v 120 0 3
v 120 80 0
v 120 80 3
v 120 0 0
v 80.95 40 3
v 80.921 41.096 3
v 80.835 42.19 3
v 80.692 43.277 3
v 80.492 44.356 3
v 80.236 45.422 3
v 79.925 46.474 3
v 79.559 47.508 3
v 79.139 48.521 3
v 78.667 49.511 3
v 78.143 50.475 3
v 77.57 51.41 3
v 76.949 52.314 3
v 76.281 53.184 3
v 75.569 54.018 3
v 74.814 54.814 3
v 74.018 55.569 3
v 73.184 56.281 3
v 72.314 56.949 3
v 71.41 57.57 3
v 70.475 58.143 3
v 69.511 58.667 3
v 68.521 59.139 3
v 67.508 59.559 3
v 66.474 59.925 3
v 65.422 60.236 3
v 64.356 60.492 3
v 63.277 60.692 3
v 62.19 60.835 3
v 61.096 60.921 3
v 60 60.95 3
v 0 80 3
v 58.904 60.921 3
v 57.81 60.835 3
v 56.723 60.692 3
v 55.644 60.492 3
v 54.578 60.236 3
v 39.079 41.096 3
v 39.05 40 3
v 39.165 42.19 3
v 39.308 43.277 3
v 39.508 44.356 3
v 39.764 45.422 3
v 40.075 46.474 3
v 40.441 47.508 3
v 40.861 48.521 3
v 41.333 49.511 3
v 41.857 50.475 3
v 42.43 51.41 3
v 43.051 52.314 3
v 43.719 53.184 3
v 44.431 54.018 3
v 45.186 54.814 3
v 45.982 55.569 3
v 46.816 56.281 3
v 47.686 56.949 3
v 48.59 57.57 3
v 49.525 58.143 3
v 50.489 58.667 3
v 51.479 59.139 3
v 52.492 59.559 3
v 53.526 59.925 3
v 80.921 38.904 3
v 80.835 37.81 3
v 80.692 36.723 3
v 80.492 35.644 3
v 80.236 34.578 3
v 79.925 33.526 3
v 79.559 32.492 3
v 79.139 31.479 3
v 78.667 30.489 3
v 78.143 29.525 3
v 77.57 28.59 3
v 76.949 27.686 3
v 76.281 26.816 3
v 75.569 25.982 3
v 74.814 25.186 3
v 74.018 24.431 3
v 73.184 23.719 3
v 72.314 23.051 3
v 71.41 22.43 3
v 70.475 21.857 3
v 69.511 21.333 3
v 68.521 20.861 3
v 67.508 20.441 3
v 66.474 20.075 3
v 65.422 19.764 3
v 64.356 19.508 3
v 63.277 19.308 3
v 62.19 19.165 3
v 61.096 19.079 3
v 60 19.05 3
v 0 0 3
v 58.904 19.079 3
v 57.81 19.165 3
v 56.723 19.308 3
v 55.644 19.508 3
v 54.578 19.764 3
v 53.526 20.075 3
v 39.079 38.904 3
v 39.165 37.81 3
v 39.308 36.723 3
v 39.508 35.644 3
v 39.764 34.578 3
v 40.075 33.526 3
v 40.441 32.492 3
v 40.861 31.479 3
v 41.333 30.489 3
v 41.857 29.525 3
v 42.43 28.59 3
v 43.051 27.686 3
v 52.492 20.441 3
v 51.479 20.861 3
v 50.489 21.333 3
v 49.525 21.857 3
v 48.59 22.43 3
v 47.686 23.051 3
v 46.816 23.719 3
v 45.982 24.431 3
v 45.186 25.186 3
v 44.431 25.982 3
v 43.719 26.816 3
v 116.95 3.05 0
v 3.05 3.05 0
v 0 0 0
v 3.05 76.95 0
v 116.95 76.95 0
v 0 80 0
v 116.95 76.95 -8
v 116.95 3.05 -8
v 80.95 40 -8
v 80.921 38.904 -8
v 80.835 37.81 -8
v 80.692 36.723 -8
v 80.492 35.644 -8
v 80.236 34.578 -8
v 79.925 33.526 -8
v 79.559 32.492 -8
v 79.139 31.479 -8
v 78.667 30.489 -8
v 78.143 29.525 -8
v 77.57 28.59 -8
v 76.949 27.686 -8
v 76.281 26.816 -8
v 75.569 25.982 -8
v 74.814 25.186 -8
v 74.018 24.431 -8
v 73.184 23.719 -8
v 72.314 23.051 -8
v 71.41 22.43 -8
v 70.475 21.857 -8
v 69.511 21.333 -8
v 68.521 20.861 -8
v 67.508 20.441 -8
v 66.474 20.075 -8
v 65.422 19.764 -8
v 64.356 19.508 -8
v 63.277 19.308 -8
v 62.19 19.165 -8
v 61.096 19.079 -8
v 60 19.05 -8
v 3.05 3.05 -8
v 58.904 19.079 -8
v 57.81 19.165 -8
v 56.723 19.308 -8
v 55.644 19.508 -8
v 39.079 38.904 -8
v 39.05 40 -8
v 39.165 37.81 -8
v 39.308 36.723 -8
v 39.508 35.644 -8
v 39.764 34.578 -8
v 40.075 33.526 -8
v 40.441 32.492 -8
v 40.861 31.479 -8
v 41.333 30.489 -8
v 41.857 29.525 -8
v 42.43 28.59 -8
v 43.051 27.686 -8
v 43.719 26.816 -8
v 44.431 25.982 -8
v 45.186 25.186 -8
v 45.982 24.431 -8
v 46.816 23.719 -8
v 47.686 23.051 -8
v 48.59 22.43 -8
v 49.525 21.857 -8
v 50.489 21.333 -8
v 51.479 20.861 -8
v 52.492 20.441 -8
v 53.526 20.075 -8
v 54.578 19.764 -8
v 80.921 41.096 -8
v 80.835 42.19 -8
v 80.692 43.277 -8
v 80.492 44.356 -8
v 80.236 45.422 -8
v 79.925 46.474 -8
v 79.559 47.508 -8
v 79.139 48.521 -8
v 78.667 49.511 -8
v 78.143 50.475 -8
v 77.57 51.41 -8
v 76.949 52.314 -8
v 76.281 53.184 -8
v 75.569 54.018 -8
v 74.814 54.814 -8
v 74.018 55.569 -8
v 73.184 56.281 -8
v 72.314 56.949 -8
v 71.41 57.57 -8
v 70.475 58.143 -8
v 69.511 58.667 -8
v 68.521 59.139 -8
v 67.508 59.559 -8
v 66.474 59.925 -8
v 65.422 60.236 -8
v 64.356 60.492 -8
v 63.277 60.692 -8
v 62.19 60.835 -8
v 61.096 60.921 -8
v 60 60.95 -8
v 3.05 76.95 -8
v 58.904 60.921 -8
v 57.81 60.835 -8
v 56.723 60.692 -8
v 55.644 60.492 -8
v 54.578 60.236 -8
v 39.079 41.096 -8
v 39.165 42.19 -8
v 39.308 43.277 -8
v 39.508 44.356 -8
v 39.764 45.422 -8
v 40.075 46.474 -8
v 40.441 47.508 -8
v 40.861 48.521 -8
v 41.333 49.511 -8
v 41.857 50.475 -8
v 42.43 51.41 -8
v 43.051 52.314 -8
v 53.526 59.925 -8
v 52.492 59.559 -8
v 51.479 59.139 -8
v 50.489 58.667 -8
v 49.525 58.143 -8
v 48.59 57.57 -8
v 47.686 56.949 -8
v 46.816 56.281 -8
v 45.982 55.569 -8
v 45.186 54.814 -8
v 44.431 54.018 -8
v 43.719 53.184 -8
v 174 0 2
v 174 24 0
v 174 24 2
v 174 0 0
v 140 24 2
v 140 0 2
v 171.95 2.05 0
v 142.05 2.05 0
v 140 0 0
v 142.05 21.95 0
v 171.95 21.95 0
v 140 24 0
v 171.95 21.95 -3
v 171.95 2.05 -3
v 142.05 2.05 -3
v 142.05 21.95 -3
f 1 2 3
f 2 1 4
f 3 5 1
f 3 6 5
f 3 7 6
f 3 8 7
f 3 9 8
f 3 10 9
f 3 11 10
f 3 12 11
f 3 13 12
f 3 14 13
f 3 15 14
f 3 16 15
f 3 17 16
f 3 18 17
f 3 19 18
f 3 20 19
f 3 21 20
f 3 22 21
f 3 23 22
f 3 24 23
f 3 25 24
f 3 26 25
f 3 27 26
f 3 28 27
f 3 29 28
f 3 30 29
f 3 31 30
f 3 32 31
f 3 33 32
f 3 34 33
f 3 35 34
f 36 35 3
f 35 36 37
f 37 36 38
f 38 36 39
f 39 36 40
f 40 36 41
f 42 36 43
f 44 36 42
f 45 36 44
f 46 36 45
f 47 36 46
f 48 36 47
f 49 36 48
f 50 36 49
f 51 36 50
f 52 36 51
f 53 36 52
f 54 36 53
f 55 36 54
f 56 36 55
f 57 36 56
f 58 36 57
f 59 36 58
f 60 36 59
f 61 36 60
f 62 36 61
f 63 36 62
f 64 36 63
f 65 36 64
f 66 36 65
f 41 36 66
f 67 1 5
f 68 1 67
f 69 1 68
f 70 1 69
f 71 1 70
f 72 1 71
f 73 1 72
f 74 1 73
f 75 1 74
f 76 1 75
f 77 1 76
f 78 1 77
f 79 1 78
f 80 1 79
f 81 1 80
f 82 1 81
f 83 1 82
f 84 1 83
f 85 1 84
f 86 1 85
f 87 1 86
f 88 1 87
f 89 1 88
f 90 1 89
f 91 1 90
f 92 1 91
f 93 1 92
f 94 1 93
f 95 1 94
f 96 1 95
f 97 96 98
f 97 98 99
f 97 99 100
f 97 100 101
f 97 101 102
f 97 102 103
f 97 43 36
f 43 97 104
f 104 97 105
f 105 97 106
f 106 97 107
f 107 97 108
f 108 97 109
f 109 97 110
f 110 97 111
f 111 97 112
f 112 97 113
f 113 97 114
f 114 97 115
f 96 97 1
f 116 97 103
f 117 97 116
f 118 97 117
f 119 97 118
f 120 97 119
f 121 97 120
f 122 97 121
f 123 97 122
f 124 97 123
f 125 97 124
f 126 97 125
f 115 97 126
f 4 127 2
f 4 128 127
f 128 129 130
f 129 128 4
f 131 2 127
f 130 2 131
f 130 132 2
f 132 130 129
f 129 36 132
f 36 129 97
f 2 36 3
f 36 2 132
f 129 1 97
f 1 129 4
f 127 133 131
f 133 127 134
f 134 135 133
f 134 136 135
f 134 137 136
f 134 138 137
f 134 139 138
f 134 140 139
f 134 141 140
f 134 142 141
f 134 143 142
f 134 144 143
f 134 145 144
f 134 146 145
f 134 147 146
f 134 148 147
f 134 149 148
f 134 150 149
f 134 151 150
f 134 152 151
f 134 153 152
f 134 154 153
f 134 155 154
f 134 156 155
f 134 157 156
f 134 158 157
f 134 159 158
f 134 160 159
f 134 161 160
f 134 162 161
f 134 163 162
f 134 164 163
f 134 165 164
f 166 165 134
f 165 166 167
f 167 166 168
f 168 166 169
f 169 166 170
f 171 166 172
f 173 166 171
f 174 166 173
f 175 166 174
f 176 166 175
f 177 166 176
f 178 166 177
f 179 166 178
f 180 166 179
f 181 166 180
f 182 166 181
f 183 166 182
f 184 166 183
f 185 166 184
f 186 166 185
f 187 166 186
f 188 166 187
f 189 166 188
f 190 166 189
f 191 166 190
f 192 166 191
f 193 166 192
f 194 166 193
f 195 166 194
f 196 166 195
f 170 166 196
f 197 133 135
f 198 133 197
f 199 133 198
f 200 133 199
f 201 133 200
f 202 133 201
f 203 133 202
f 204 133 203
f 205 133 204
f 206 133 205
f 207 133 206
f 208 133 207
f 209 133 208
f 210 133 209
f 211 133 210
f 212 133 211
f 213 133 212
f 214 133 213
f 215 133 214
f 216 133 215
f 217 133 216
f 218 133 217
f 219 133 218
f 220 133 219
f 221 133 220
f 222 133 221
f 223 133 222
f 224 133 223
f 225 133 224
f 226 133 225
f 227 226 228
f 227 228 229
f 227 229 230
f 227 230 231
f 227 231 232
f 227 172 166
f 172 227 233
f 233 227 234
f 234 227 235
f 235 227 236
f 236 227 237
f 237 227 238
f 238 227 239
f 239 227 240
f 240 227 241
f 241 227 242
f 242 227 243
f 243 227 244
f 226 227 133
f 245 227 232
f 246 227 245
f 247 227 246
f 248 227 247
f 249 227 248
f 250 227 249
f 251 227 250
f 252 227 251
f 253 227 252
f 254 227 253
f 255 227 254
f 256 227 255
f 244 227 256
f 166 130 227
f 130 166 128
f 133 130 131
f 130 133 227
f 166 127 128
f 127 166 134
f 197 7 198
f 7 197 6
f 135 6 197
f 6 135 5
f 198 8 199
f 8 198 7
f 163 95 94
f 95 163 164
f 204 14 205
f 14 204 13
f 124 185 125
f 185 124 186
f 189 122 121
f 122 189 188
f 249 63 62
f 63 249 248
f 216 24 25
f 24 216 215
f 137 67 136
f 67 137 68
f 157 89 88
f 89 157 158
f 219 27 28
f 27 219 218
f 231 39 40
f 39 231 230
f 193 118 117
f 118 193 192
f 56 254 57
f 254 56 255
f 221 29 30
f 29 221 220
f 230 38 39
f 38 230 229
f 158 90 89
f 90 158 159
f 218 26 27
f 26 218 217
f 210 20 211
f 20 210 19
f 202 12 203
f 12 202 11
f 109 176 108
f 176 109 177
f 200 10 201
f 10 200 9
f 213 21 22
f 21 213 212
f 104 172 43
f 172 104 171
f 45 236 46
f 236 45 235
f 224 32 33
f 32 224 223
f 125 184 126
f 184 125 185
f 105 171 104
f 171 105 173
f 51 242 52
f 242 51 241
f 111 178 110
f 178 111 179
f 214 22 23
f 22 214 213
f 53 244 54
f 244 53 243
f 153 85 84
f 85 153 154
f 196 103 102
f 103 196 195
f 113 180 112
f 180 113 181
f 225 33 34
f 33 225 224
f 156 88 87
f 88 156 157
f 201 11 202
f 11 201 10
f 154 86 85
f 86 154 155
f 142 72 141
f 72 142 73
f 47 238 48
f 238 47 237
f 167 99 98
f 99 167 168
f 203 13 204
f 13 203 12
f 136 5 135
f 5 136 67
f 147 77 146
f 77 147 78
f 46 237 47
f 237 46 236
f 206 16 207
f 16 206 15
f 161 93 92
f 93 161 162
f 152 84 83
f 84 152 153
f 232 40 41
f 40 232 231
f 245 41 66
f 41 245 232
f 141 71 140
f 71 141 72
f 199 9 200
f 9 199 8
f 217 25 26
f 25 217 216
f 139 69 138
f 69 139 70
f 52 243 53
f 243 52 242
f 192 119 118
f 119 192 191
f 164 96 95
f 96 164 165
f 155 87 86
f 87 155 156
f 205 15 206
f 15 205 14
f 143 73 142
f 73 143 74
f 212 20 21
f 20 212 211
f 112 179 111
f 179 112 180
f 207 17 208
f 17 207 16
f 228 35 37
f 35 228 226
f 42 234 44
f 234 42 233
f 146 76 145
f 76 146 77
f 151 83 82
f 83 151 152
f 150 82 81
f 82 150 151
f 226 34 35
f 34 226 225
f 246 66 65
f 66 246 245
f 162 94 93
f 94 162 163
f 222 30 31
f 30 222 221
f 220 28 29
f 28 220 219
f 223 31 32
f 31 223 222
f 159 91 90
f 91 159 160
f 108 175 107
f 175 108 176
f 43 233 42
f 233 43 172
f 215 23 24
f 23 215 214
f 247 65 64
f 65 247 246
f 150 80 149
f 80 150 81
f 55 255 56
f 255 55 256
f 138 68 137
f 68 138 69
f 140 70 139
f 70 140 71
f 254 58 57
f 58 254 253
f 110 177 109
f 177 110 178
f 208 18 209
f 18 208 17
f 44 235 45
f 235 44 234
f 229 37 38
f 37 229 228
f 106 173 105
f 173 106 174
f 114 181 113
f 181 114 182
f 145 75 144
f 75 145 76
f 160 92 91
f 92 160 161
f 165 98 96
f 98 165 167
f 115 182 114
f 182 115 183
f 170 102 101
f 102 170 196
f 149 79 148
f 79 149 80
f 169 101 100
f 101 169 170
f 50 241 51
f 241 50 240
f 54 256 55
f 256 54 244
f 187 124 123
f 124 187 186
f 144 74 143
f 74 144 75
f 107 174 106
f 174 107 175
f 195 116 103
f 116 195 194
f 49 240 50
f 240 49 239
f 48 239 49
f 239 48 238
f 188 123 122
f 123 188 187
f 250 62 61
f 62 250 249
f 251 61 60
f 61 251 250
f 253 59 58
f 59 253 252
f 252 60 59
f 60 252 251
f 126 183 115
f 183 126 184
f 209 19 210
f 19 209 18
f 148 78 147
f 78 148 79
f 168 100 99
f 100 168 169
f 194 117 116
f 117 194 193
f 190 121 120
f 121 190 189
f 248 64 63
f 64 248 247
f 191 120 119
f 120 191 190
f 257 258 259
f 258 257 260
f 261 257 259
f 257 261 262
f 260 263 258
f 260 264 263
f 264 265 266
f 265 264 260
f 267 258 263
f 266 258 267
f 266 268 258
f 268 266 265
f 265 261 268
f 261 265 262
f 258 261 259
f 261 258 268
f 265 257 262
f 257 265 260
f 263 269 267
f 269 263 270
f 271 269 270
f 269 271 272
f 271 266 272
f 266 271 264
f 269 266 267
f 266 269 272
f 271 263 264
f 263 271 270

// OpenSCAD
//
// ======================================================
// TAMPAS AJUSTADAS PARA A CAIXA
// Folga lateral: 0,05 mm por lado
// ======================================================

$fn = 120;

// ------------------------
// PARÂMETROS GERAIS
// ------------------------

folga_lateral = 0.05;

// Dimensões externas da caixa associada
comprimento_caixa = 120;
largura_caixa = 80;
altura_caixa = 50;
parede_caixa = 3;

// Abertura menor da caixa
porta_largura = 30;
porta_altura = 20;

// Distância entre as peças na mesa de impressão
espacamento = 20;

// ======================================================
// PARTE 1 - TAMPA PRINCIPAL
// ======================================================

// ------------------------
// PARÂMETROS DA TAMPA PRINCIPAL
// ------------------------

comprimento_tampa = comprimento_caixa;
largura_tampa = largura_caixa;
espessura_tampa = 3;

// Aba que entra no vão interno da caixa.
// Vão interno: 114 mm x 74 mm.
// Com 0,05 mm de folga por lado: 113,9 mm x 73,9 mm.
comprimento_aba = comprimento_caixa - 2*parede_caixa - 2*folga_lateral;
largura_aba = largura_caixa - 2*parede_caixa - 2*folga_lateral;
profundidade_aba = 8;

diametro_furo = 41.9;
raio_furo = diametro_furo/2;

// Posições
aba_x = (comprimento_tampa - comprimento_aba)/2;
aba_y = (largura_tampa - largura_aba)/2;

centro_x = comprimento_tampa/2;
centro_y = largura_tampa/2;

// ------------------------
// MÓDULO TAMPA PRINCIPAL
// ------------------------

module tampa_principal()
{
    difference()
    {
        union()
        {
            // Tampa externa
            cube([
                comprimento_tampa,
                largura_tampa,
                espessura_tampa
            ]);

            // Aba de encaixe
            translate([
                aba_x,
                aba_y,
                -profundidade_aba
            ])
            cube([
                comprimento_aba,
                largura_aba,
                profundidade_aba
            ]);
        }

        // Furo central
        translate([
            centro_x,
            centro_y,
            -profundidade_aba-1
        ])
        cylinder(
            h=profundidade_aba+espessura_tampa+2,
            r=raio_furo
        );
    }
}

// ======================================================
// PARTE 2 - TAMPA MENOR DA ABERTURA LATERAL
// ======================================================

// ------------------------
// PARÂMETROS DA TAMPA MENOR
// ------------------------

// Aba externa da tampa menor: sobra de 2 mm em cada lado da abertura.
// Abertura: 30 mm x 20 mm.
// Tampa externa: 34 mm x 24 mm.
tampa_menor_aba_externa = 2;
tampa_menor_largura = porta_largura + 2*tampa_menor_aba_externa;
tampa_menor_altura = porta_altura + 2*tampa_menor_aba_externa;
tampa_menor_espessura = 2;

// Aba que entra no buraco menor da caixa.
// Abertura: 30 mm x 20 mm.
// Com 0,05 mm de folga por lado: 29,9 mm x 19,9 mm.
tampa_menor_profundidade_aba = parede_caixa;
tampa_menor_aba_largura = porta_largura - 2*folga_lateral;
tampa_menor_aba_altura = porta_altura - 2*folga_lateral;

// ------------------------
// MÓDULO TAMPA MENOR
// ------------------------

module tampa_menor()
{
    union()
    {
        // Tampa externa
        cube([
            tampa_menor_largura,
            tampa_menor_altura,
            tampa_menor_espessura
        ]);

        // Aba de encaixe
        translate([
            (tampa_menor_largura - tampa_menor_aba_largura)/2,
            (tampa_menor_altura - tampa_menor_aba_altura)/2,
            -tampa_menor_profundidade_aba
        ])
        cube([
            tampa_menor_aba_largura,
            tampa_menor_aba_altura,
            tampa_menor_profundidade_aba
        ]);
    }
}

// ======================================================
// MONTAGEM FINAL
// ======================================================

// Tampa principal
translate([0,0,0])
    tampa_principal();

// Tampa menor ao lado da principal
translate([
    comprimento_tampa + espacamento,
    0,
    0
])
    tampa_menor();
